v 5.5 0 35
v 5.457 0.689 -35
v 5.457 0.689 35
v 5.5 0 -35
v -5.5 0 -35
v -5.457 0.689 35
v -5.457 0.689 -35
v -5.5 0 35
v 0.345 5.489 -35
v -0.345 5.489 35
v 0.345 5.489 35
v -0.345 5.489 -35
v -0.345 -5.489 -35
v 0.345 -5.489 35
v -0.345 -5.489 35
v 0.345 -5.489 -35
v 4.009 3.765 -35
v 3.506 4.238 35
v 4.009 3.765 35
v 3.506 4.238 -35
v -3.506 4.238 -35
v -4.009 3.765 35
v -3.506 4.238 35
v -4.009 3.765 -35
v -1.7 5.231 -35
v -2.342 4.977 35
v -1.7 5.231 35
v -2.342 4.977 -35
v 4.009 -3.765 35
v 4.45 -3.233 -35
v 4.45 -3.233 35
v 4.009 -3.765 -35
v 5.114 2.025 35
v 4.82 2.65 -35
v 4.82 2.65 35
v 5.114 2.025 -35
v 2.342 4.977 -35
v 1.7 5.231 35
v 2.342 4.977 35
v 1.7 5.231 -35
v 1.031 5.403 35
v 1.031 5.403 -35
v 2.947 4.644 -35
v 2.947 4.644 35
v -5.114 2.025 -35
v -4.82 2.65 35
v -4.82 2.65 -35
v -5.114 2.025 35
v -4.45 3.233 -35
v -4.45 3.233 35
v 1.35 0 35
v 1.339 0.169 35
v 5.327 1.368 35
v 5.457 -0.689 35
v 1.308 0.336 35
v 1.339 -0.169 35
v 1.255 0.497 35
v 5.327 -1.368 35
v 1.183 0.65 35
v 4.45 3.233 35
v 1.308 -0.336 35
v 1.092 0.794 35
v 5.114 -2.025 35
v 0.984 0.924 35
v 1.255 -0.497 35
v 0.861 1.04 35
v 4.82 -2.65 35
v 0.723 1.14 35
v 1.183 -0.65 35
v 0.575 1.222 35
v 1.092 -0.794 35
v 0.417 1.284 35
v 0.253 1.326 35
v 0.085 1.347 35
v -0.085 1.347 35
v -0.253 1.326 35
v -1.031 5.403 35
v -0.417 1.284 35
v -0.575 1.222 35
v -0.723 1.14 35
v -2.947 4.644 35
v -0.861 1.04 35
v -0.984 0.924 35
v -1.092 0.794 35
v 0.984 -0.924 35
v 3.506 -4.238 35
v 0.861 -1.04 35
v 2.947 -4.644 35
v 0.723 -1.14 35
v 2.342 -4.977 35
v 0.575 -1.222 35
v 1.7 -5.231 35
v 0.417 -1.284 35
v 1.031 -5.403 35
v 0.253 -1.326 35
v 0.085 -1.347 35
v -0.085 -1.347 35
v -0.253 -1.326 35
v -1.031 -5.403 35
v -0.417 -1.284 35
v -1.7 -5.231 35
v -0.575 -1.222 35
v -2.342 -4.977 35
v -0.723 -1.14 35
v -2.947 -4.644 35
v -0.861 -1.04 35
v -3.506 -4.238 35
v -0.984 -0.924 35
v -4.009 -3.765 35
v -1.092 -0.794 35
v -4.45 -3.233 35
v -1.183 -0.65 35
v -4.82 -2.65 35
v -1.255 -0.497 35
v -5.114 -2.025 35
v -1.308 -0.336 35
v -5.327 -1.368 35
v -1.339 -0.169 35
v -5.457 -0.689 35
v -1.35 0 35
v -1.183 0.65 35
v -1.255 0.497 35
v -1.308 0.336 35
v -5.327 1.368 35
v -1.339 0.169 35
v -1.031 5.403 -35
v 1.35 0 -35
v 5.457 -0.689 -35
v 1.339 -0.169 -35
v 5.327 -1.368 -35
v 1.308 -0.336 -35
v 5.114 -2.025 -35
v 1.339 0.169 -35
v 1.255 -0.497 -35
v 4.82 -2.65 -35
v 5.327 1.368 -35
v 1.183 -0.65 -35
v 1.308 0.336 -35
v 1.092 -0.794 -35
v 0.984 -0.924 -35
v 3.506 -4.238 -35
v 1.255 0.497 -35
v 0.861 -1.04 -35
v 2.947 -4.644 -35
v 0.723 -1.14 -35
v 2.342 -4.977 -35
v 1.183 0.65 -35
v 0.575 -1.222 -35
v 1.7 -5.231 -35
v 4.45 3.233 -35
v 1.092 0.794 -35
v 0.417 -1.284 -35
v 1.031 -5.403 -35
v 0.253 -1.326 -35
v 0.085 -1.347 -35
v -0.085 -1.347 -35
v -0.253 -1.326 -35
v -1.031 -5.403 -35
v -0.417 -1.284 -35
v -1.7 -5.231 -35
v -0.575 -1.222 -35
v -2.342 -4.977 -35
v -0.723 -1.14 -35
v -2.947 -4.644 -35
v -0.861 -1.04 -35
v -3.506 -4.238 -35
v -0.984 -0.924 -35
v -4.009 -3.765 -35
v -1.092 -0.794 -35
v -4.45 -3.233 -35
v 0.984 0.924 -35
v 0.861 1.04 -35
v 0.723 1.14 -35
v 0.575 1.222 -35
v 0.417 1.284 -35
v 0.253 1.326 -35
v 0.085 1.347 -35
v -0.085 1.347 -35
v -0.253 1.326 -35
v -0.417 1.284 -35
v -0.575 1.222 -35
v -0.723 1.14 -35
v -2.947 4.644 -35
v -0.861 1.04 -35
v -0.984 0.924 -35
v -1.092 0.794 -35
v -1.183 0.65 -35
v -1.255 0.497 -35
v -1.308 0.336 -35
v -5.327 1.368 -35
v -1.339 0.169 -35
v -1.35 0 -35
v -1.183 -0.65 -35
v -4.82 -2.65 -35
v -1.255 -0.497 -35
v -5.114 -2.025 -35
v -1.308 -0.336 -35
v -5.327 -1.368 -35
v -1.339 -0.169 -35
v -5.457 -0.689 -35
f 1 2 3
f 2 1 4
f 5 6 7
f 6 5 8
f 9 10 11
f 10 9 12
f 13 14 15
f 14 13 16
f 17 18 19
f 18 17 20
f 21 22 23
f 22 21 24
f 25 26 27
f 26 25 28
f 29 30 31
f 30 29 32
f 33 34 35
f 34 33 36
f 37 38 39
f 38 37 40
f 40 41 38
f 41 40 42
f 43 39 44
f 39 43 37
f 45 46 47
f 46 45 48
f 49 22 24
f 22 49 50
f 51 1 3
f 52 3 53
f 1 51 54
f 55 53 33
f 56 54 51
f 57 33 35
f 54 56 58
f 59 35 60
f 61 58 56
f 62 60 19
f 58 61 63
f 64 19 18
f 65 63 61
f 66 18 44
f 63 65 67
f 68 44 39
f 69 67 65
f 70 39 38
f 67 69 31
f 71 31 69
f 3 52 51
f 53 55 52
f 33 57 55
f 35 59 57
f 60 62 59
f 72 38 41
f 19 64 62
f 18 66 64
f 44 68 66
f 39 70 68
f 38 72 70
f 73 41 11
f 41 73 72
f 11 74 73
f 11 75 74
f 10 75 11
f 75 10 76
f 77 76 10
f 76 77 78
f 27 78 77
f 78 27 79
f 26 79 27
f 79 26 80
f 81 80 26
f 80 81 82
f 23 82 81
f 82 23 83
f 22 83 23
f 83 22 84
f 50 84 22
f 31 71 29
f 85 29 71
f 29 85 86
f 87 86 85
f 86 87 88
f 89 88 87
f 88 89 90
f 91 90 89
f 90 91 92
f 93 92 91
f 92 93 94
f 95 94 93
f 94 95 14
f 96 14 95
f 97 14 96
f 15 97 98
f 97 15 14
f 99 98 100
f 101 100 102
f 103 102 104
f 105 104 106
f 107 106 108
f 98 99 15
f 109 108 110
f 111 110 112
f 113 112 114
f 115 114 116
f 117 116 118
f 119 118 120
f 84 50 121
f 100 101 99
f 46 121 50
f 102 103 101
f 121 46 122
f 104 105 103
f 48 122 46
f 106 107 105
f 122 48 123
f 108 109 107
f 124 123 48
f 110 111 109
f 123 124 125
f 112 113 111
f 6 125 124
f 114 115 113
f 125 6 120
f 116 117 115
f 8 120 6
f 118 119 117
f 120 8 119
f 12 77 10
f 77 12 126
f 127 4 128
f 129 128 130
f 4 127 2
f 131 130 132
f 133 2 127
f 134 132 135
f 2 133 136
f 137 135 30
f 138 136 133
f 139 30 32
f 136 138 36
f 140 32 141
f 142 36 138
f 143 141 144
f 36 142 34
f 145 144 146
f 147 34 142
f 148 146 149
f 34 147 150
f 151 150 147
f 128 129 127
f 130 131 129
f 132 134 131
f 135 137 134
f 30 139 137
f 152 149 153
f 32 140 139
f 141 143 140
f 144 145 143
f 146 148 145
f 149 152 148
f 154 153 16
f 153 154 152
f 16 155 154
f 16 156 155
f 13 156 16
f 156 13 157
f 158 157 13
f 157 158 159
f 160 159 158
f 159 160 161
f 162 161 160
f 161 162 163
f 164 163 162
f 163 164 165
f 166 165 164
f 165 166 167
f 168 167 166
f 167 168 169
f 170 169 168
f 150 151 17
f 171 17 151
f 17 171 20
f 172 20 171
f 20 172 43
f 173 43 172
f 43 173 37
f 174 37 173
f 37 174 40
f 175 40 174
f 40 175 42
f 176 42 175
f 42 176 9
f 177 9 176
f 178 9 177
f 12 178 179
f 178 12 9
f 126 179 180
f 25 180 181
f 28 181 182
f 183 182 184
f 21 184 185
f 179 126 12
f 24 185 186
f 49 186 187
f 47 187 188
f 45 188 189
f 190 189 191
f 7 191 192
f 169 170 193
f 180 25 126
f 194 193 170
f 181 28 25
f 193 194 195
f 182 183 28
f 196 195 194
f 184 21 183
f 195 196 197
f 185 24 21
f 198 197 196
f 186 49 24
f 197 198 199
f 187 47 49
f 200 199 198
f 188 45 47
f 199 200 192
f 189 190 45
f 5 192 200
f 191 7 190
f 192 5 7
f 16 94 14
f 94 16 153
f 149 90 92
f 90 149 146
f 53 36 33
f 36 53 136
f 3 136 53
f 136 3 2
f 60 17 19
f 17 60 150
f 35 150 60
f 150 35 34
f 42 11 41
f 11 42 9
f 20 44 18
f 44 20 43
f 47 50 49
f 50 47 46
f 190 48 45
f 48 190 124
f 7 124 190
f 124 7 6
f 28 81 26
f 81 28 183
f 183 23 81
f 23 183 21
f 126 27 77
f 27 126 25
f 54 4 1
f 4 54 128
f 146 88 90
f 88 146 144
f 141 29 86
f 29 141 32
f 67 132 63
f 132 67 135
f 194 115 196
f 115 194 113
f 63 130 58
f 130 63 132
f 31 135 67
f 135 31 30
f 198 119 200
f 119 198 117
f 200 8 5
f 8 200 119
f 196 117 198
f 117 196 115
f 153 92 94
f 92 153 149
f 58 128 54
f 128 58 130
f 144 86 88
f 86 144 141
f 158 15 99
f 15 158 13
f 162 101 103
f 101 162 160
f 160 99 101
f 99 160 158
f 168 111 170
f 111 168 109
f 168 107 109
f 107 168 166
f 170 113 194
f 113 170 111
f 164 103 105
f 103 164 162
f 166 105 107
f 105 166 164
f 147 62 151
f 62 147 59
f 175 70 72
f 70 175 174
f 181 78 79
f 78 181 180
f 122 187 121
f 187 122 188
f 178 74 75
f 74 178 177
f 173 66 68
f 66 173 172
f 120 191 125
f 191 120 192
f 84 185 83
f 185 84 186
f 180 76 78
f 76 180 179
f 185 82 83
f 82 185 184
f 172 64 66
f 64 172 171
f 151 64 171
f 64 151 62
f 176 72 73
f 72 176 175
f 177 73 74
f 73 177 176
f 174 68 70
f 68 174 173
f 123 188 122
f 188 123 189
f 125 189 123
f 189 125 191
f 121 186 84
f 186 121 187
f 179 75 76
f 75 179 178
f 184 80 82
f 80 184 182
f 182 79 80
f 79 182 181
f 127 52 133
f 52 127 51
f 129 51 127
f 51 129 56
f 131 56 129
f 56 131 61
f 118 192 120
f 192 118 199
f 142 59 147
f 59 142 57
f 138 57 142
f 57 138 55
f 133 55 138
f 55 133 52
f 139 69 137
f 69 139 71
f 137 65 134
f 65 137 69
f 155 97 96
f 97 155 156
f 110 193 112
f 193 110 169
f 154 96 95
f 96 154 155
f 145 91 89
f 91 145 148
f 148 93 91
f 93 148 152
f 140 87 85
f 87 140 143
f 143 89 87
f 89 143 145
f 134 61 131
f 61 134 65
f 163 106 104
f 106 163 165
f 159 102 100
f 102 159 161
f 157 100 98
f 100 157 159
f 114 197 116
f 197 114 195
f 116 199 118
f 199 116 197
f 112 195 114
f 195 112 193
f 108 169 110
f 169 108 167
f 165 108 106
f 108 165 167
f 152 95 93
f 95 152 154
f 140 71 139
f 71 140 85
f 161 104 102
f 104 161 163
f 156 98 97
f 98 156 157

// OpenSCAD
$fn = 50;


difference() {
	union() {
		translate(v = [0, 0, -35.0000000000]) {
			cylinder(h = 70, r = 5.5000000000);
		}
	}
	union() {
		translate(v = [0, 0, -100.0000000000]) {
			cylinder(h = 200, r = 1.3500000000);
		}
	}
}
